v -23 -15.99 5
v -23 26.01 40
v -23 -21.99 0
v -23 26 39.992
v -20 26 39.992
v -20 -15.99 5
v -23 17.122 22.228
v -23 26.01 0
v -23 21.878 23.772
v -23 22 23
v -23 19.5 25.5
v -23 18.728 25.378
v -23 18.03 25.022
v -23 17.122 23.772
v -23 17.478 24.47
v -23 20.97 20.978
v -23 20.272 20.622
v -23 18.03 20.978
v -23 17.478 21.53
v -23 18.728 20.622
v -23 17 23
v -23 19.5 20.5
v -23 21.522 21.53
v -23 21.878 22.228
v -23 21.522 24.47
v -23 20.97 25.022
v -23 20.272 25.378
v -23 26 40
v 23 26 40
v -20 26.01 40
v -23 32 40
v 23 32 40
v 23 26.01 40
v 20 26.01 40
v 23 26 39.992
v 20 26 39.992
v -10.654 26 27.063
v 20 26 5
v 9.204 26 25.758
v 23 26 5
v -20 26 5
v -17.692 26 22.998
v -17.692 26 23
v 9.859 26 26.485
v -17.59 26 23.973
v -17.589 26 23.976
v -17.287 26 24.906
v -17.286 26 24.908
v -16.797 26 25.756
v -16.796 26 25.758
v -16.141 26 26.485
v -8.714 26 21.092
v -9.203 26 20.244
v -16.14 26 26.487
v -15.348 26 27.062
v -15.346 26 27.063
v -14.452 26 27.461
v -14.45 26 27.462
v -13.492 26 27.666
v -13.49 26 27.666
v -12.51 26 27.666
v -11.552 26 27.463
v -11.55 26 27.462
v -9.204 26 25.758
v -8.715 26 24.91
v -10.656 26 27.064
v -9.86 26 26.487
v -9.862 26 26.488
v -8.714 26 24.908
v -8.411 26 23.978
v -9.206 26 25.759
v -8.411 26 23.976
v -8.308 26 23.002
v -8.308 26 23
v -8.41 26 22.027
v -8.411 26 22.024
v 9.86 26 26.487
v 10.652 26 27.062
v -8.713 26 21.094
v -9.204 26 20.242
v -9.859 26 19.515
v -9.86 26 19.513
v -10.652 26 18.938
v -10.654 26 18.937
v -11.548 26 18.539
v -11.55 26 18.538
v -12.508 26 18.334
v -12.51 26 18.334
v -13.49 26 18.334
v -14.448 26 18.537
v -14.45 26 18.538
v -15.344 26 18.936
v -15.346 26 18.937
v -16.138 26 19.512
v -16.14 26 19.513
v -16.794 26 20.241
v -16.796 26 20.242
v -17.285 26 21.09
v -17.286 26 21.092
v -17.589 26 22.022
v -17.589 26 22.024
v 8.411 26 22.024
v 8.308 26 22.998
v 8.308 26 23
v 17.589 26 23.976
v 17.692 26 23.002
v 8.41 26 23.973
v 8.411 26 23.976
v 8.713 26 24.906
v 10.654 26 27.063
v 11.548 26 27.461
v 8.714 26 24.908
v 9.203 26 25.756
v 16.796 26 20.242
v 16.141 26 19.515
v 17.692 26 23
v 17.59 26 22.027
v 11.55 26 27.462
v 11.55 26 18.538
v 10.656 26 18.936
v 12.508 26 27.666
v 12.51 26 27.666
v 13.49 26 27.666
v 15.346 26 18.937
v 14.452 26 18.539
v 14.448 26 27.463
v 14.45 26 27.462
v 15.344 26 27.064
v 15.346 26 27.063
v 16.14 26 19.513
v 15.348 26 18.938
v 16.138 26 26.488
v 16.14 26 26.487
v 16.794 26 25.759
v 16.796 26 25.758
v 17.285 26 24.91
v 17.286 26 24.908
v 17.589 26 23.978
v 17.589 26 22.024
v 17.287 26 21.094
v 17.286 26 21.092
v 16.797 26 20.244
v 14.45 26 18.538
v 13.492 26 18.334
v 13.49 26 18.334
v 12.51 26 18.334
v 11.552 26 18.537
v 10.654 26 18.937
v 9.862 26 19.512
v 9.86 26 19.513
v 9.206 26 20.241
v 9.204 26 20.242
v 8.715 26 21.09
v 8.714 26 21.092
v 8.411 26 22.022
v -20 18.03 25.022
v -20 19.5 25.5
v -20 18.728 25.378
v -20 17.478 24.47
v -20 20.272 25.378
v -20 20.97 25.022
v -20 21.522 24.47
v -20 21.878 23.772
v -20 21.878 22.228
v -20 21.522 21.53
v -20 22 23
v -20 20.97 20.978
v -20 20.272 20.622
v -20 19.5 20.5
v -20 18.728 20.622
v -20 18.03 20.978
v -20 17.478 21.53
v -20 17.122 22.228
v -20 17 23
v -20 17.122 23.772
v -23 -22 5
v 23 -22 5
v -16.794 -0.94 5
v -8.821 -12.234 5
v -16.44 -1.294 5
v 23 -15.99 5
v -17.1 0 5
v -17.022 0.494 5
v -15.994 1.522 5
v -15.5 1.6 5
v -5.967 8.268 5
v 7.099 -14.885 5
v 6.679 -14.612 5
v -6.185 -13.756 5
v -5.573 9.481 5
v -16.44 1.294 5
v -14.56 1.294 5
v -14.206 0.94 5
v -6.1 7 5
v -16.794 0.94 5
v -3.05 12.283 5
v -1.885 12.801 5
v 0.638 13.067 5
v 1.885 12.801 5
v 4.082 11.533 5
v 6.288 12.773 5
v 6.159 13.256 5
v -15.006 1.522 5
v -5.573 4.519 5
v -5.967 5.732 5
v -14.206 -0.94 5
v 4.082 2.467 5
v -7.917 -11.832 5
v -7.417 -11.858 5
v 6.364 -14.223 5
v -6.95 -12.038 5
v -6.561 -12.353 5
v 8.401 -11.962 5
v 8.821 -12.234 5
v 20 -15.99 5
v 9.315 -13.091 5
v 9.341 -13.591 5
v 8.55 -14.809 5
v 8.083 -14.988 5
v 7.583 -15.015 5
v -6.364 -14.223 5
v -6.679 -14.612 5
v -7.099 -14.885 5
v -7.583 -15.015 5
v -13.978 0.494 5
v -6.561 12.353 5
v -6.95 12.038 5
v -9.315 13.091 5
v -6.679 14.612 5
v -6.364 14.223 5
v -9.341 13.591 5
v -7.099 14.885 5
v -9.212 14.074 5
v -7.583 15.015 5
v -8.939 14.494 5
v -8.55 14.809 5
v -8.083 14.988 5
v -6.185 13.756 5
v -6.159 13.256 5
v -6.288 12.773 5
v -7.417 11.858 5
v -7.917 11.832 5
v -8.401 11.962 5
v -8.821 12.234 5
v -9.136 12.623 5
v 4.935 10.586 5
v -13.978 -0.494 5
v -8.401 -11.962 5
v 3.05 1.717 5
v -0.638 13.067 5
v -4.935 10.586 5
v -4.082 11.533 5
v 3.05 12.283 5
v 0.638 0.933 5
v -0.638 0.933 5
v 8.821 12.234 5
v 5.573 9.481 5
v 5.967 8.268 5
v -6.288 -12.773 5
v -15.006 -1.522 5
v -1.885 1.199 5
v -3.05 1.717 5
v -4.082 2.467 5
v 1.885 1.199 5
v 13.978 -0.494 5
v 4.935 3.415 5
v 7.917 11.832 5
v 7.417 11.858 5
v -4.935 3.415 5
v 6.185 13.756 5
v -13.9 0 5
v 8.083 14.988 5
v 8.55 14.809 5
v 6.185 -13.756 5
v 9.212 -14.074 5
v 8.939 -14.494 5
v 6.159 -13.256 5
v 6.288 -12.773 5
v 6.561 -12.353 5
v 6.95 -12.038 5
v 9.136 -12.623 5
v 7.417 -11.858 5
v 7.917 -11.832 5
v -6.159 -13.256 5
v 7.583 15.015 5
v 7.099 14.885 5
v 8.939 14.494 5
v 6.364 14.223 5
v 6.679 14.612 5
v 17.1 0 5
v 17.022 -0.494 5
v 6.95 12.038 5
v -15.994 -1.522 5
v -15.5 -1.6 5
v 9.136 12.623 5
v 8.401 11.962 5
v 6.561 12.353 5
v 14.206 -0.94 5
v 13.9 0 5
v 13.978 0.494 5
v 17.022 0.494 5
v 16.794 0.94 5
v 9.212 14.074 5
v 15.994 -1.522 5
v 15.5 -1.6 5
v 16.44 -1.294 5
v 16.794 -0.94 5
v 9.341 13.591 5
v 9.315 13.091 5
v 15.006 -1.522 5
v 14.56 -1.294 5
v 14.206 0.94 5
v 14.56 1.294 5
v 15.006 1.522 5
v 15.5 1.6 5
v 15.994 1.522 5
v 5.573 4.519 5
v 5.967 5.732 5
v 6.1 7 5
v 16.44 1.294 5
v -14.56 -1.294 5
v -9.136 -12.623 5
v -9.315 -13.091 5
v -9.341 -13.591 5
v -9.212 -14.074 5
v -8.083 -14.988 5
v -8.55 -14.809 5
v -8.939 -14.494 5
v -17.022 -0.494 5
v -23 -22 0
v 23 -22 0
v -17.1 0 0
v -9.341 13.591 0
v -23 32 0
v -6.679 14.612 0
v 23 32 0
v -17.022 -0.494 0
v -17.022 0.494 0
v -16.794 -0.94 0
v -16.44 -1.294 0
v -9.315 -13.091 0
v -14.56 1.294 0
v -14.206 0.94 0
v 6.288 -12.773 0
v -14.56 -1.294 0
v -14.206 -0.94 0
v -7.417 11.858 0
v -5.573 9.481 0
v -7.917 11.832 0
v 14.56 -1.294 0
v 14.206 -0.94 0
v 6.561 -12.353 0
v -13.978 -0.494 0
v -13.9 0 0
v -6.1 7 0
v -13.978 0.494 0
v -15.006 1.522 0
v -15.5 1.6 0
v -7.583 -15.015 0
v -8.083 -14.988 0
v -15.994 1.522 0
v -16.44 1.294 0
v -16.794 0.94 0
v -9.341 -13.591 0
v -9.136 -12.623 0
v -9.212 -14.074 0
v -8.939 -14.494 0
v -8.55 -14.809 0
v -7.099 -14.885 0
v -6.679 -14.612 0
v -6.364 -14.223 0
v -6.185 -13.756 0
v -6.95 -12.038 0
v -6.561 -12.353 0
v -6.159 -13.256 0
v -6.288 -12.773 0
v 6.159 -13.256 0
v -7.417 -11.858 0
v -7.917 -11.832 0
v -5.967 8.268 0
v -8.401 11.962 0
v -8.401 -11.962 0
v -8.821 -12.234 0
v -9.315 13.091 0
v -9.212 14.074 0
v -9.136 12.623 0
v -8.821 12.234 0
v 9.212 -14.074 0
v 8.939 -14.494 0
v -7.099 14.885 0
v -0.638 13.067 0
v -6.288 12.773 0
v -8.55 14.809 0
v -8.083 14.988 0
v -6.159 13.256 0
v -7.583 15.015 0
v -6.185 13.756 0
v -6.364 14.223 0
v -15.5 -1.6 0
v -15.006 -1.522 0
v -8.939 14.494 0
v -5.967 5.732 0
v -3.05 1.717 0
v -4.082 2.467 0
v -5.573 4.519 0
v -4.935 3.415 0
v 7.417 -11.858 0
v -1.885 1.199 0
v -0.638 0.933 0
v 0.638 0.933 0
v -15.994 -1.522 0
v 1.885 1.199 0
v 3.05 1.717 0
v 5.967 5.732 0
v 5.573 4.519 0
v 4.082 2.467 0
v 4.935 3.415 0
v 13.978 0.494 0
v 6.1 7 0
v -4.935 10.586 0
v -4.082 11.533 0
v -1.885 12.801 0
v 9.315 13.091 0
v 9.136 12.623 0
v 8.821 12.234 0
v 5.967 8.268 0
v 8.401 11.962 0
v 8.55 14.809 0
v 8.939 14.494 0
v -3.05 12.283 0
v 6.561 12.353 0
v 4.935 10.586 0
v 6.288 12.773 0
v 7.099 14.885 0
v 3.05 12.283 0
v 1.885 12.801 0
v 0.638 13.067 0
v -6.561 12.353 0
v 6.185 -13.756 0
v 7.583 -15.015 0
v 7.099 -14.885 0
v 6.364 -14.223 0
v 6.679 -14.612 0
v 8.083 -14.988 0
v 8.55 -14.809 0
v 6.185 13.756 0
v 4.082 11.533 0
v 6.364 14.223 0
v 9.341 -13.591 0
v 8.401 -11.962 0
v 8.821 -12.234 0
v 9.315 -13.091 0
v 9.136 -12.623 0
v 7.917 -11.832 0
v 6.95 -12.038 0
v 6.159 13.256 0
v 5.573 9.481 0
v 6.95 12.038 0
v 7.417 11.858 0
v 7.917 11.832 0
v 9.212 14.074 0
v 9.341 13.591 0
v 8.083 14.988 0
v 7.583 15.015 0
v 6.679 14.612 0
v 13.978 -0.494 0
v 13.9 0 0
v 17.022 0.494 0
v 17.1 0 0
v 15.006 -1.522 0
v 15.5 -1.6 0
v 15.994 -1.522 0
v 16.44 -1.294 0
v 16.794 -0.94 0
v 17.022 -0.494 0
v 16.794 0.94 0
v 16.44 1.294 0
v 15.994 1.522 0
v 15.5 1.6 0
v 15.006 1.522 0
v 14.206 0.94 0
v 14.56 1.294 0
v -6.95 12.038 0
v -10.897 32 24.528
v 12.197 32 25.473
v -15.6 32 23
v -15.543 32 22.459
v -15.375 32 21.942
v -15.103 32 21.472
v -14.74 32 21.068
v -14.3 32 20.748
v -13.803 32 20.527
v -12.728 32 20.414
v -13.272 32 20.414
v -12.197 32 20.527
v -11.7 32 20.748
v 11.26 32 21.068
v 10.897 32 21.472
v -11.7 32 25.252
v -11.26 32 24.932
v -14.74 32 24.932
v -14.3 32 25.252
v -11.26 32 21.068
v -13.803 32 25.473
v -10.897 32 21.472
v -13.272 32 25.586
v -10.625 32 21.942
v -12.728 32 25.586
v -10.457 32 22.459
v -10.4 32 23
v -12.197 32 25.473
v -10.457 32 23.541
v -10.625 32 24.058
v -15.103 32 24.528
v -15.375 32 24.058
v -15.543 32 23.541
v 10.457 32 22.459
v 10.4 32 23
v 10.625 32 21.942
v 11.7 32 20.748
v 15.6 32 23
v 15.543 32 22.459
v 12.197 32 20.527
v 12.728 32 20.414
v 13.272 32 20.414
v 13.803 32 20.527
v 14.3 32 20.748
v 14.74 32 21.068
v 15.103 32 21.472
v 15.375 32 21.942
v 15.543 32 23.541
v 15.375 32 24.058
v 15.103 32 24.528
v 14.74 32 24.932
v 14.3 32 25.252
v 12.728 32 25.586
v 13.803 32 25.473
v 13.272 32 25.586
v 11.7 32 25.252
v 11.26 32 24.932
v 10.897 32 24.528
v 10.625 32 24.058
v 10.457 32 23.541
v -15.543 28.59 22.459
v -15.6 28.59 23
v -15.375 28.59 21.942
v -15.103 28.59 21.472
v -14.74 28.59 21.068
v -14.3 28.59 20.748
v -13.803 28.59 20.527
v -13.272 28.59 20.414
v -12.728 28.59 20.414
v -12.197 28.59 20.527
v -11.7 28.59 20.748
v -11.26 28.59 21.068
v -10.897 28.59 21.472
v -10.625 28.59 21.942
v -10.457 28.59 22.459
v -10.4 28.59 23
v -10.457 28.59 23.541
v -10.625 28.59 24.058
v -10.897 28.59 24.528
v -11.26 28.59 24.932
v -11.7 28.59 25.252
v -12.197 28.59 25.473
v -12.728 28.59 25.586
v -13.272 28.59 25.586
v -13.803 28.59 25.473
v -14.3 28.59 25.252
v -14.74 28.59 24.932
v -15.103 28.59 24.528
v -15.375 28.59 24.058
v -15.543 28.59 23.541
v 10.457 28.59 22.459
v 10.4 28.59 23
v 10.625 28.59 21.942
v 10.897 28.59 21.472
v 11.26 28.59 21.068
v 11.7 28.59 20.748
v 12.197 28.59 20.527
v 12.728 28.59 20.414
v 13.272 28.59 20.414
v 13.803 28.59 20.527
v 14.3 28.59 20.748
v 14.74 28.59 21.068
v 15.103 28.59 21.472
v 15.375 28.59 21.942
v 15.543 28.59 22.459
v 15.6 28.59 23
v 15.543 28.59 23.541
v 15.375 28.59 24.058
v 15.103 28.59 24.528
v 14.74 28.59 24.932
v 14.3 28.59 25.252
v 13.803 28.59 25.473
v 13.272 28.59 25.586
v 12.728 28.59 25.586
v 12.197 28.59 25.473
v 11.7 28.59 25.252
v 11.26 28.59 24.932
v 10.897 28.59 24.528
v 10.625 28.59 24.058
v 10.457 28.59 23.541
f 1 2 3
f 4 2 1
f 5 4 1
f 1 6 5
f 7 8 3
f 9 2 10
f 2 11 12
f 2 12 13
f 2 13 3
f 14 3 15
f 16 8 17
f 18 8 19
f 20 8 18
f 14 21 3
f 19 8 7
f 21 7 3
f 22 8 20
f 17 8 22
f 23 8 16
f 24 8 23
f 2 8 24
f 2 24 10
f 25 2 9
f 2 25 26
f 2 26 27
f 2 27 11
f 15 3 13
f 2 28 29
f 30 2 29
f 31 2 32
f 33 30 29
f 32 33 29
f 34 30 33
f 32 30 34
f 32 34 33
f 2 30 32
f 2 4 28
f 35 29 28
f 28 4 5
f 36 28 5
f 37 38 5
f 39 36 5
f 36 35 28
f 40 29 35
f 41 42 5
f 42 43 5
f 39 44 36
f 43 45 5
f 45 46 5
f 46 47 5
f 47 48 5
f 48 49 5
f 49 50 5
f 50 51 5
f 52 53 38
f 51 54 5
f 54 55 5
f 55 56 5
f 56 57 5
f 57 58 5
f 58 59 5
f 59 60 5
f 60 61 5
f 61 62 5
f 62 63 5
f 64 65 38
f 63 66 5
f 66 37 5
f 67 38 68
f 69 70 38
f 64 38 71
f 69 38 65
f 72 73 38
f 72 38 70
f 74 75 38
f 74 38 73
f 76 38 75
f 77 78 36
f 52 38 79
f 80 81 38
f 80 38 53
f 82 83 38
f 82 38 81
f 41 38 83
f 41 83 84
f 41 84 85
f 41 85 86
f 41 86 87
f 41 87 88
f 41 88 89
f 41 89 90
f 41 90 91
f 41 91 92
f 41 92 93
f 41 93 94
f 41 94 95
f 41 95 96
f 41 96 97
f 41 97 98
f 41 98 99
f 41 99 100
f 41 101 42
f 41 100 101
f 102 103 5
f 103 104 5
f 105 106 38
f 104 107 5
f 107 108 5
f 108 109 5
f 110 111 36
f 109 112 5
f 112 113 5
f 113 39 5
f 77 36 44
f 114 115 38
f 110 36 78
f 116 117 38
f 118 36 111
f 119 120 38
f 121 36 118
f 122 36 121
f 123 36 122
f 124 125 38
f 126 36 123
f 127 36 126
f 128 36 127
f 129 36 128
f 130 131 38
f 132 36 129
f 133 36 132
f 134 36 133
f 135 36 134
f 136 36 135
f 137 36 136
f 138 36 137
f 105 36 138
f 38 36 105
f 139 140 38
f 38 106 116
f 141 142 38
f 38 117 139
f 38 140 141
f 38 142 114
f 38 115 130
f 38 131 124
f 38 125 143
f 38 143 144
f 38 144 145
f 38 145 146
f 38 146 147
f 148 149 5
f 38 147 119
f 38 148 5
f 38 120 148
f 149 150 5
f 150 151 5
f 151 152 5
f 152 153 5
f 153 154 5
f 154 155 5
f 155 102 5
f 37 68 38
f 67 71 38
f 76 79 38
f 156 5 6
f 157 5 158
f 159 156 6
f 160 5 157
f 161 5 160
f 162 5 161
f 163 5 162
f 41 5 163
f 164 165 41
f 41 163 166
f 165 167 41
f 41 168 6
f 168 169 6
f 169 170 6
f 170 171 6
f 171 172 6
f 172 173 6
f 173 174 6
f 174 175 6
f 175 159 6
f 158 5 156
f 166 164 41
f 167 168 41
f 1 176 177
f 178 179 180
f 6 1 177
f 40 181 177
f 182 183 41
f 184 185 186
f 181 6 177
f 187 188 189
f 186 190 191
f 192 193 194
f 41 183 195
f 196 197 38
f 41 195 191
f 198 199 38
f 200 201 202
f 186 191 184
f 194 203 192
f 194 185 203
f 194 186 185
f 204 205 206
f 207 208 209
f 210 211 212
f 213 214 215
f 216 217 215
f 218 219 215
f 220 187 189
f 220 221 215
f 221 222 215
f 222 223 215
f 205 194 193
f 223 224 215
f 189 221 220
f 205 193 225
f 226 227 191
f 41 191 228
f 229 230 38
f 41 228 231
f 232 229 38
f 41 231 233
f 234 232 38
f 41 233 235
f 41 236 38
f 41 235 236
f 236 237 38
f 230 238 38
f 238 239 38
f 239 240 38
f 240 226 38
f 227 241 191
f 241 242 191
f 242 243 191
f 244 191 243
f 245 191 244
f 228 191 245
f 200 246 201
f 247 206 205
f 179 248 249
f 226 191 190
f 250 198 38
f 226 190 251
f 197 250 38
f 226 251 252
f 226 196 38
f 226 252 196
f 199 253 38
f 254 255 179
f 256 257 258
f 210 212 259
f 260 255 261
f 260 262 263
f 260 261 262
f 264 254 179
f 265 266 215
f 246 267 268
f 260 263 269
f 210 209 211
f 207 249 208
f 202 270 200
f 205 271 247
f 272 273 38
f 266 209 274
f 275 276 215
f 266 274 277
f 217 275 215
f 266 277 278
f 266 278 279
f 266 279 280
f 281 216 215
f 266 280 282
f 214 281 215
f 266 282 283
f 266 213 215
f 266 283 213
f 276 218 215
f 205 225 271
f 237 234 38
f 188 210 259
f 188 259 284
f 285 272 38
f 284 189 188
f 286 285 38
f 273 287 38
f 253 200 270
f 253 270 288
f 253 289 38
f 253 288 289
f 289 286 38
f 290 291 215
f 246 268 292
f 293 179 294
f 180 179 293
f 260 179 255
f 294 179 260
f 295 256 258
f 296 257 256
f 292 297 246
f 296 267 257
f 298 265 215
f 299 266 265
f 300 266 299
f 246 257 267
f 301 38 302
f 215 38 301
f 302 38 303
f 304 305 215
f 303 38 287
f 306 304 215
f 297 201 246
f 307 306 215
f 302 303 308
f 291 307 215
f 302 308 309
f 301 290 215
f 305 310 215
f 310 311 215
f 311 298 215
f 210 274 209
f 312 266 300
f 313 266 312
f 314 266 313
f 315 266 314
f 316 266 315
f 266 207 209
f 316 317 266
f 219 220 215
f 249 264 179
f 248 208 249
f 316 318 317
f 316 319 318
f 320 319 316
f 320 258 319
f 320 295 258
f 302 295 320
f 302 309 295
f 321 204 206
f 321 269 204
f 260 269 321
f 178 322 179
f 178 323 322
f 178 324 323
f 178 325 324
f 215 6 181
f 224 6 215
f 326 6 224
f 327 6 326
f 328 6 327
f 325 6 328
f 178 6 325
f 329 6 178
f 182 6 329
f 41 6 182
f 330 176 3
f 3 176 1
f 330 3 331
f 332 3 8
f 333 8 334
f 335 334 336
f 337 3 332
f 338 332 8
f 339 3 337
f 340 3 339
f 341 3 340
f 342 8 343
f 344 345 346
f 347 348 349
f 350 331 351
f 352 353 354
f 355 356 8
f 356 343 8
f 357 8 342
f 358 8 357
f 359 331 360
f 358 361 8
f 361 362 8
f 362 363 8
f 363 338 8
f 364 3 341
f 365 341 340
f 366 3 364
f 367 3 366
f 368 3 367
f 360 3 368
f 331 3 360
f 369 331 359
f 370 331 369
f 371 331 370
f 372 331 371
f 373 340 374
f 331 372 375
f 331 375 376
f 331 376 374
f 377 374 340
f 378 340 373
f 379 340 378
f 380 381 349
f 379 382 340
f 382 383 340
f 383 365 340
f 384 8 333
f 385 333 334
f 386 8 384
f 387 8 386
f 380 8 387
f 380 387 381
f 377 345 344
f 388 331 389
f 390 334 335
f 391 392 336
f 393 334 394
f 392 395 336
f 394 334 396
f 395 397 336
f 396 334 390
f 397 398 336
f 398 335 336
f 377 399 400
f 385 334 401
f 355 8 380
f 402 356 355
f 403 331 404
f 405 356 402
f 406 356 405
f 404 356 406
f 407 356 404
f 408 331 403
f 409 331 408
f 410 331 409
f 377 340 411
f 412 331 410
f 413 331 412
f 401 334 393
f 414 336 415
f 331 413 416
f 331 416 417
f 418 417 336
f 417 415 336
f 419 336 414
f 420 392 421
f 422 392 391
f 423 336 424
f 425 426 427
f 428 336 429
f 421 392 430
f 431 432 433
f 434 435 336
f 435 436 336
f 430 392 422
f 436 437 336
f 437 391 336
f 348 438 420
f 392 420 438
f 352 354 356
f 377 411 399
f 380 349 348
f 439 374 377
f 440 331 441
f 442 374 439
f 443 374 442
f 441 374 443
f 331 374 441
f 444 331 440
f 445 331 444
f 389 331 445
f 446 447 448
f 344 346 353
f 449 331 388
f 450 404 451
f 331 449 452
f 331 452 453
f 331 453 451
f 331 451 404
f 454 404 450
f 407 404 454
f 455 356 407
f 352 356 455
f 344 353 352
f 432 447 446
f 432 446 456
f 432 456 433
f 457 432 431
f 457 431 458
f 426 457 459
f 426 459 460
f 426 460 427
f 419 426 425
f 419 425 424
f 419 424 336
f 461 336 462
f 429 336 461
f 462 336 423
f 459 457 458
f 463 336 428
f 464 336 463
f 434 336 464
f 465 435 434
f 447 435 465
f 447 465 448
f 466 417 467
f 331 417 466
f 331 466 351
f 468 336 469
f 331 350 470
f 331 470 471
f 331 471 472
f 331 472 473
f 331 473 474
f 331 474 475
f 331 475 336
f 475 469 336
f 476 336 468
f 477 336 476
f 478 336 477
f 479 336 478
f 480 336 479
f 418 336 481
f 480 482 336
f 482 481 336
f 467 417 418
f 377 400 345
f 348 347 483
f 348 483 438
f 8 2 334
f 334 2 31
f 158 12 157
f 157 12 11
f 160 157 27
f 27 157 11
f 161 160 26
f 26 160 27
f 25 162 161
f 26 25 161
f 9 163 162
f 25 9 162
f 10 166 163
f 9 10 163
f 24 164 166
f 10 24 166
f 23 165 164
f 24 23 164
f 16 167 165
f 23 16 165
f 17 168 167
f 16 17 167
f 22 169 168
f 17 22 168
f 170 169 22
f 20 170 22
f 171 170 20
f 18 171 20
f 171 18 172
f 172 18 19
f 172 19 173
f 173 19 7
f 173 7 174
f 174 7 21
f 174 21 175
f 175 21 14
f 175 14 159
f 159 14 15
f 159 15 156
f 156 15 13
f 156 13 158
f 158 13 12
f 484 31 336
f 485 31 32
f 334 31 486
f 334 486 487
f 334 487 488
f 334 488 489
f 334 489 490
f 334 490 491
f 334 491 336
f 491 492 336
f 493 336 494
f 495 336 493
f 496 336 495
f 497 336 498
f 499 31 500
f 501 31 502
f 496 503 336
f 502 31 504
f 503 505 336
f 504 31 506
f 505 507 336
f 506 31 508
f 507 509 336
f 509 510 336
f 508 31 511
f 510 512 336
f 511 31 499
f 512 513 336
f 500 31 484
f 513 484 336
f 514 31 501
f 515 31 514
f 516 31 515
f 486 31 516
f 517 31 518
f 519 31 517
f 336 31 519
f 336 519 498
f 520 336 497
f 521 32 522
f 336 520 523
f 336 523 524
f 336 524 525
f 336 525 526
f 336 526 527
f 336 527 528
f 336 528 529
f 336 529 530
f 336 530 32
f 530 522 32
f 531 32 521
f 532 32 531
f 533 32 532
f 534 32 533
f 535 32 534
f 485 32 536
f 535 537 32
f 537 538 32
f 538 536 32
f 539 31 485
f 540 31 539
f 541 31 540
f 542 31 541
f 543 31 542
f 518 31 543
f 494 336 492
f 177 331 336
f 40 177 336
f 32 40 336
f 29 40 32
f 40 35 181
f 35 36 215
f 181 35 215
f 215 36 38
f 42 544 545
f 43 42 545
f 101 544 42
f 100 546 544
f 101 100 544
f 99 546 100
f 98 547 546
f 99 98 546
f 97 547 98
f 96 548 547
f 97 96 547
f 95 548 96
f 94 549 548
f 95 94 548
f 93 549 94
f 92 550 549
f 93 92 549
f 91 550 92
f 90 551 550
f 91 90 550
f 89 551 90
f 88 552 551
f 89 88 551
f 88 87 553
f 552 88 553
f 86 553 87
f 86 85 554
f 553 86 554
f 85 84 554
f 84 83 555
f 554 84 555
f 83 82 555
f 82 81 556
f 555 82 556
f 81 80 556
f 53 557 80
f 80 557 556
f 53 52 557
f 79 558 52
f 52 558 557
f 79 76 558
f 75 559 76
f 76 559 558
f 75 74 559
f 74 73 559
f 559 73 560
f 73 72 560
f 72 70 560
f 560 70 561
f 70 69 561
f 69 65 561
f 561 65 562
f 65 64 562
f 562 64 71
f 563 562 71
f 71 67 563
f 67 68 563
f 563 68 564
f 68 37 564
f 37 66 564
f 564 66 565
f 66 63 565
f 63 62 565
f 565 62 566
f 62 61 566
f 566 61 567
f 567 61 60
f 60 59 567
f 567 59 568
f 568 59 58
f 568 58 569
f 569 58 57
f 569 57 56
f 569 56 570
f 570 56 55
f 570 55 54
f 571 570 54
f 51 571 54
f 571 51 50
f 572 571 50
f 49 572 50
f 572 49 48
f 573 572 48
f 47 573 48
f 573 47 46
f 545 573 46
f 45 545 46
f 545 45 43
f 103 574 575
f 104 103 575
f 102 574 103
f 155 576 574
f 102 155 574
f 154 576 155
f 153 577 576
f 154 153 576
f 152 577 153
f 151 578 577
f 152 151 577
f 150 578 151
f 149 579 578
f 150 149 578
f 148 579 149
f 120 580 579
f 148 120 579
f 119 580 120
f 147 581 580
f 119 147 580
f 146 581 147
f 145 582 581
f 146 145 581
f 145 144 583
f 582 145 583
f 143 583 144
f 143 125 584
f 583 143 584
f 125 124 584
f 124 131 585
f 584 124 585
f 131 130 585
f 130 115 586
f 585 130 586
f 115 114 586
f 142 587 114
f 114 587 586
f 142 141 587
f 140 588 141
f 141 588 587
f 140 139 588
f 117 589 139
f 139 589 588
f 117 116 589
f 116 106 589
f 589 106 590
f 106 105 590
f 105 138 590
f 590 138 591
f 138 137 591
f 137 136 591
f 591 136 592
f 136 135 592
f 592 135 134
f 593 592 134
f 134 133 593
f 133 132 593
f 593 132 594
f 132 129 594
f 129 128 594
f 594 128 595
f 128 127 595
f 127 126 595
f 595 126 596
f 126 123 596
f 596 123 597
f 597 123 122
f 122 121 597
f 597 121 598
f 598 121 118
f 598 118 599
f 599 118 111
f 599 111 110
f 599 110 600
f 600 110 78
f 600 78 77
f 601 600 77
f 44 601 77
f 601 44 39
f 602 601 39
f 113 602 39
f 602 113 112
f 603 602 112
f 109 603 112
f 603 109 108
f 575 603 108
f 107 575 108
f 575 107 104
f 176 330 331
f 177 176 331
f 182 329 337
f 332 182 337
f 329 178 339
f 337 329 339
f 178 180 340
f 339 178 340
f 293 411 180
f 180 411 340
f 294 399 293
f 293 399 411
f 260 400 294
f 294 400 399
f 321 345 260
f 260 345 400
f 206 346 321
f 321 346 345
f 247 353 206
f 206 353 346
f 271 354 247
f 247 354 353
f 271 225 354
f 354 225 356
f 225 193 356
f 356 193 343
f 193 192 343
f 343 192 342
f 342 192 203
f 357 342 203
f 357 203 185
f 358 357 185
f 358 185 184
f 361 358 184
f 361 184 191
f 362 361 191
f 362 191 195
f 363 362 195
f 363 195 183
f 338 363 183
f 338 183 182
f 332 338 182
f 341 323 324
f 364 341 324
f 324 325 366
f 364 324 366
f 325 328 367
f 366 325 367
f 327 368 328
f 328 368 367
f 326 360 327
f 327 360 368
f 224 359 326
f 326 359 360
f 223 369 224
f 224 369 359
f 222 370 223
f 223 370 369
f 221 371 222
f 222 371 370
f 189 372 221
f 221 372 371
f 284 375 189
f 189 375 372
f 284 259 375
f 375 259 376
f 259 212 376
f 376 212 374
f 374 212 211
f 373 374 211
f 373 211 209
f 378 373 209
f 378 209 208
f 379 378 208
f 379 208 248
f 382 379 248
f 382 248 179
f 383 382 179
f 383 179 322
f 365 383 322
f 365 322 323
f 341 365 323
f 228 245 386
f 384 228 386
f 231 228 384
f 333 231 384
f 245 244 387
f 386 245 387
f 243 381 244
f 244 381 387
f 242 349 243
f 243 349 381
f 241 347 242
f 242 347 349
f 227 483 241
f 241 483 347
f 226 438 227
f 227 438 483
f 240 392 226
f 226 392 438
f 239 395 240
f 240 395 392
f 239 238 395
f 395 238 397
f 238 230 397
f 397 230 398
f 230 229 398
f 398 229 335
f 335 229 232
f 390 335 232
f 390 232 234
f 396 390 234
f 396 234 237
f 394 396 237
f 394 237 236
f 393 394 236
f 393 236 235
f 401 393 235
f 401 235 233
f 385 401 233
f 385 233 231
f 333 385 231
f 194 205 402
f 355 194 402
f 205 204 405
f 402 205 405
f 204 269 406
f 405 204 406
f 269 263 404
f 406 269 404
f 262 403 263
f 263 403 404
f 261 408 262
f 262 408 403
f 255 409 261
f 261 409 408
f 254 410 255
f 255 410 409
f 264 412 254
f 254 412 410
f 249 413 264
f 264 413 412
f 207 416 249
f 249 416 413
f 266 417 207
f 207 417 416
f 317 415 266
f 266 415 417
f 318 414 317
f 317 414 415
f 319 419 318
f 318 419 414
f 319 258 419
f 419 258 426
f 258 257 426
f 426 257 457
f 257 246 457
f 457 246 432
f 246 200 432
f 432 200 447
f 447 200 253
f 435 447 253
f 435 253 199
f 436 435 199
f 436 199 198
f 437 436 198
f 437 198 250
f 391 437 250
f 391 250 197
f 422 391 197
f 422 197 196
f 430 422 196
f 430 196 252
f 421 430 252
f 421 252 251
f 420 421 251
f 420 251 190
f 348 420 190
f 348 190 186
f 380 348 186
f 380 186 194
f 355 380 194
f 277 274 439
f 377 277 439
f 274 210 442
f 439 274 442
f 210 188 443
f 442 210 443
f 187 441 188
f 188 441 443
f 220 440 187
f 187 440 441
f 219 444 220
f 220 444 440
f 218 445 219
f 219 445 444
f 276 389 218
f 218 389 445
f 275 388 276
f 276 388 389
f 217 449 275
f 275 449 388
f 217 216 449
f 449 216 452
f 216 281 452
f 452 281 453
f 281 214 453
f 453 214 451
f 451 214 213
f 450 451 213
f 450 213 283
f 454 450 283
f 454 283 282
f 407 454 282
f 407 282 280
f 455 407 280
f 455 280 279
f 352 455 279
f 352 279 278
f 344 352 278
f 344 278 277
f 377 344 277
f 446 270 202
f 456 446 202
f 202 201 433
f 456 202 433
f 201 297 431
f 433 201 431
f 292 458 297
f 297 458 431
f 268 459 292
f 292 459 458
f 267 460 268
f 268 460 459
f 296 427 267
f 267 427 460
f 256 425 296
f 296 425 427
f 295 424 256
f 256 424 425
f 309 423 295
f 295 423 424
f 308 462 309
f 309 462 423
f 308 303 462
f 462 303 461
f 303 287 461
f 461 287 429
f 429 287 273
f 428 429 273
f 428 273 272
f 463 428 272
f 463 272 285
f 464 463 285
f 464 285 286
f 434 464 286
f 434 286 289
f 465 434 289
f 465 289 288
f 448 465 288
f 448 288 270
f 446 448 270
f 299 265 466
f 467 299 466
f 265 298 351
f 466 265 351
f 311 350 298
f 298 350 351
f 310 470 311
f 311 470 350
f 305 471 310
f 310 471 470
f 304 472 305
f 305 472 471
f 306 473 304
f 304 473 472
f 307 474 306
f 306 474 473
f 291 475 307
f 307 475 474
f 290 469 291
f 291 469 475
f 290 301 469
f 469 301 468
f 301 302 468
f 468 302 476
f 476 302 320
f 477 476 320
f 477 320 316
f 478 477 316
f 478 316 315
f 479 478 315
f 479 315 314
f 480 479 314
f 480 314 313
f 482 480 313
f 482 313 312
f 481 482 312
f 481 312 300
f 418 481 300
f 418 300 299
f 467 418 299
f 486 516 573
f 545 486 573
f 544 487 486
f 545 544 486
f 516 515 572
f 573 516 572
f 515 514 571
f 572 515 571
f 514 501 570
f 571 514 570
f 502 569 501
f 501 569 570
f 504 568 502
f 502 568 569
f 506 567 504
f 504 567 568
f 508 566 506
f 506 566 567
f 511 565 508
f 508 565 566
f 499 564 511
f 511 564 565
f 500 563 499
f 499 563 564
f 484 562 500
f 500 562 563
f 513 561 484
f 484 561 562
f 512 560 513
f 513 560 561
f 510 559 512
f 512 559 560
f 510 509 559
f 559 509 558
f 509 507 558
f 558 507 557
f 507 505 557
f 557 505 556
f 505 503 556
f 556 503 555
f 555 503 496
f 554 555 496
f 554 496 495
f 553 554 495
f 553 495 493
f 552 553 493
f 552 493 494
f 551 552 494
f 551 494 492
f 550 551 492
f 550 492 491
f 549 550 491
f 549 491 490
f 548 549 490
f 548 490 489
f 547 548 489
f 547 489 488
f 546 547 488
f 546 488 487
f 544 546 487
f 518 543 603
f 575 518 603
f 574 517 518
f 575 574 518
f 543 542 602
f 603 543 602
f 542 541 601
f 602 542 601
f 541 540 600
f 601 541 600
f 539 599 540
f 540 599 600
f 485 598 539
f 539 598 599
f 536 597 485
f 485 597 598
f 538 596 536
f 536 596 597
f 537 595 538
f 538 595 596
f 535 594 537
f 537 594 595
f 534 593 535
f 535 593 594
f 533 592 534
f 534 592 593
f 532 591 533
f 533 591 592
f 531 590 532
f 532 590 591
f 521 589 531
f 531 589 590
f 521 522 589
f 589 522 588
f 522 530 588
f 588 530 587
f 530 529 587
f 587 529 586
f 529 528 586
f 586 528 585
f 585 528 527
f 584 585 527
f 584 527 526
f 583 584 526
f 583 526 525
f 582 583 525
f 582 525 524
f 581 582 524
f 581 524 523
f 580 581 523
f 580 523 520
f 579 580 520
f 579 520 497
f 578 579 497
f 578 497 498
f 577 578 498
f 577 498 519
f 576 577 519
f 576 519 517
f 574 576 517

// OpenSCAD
module skrutka(){
union(){
cylinder(r2=5.2/2, r1=9.4/2, h=2.6, $fn=30);
translate([0,0,0.01])cylinder(r=5.2/2, h=15, $fn=30);
}
}



difference(){
translate([-23,-22,0])cube([46,48,5]);
translate([0,7,-0.01])#cylinder(r=12.2/2, h=8, $fn=30);
translate([15.5,0,-0.01])#cylinder(r=3.2/2, h=8, $fn=20);
rotate([0,0,360/6])translate([15.5,0,-0.01])#cylinder(r=3.2/2, h=8, $fn=20);
rotate([0,0,360/6*2])translate([15.5,0,-0.01])#cylinder(r=3.2/2, h=8, $fn=20);
rotate([0,0,360/6*3])translate([15.5,0,-0.01])#cylinder(r=3.2/2, h=8, $fn=20);
rotate([0,0,360/6*4])translate([15.5,0,-0.01])#cylinder(r=3.2/2, h=8, $fn=20);
rotate([0,0,360/6*5])translate([15.5,0,-0.01])#cylinder(r=3.2/2, h=8, $fn=20);
}

difference(){
translate([-23,26,0])cube([46,6,40]);
#translate([13,25.99,23])rotate([-90,0,0])skrutka();
#translate([-13,25.99,23])rotate([-90,0,0])skrutka();
}
//color("red")translate([0,7,15.5])cylinder(r=17.5,h=15,$fn=50);


translate([20,26.01,0])rotate([0,90,0])linear_extrude(height=3) polygon(points = [[0,0],[-40,0],[0,-48]]);

difference(){
translate([-23,26.01,0])rotate([0,90,0])linear_extrude(height=3) polygon(points = [[0,0],[-40,0],[0,-48]]);

translate([-19,19.5,23])rotate([0,-90,0])#cylinder(r=5/2,h=5,$fn=20);
}
